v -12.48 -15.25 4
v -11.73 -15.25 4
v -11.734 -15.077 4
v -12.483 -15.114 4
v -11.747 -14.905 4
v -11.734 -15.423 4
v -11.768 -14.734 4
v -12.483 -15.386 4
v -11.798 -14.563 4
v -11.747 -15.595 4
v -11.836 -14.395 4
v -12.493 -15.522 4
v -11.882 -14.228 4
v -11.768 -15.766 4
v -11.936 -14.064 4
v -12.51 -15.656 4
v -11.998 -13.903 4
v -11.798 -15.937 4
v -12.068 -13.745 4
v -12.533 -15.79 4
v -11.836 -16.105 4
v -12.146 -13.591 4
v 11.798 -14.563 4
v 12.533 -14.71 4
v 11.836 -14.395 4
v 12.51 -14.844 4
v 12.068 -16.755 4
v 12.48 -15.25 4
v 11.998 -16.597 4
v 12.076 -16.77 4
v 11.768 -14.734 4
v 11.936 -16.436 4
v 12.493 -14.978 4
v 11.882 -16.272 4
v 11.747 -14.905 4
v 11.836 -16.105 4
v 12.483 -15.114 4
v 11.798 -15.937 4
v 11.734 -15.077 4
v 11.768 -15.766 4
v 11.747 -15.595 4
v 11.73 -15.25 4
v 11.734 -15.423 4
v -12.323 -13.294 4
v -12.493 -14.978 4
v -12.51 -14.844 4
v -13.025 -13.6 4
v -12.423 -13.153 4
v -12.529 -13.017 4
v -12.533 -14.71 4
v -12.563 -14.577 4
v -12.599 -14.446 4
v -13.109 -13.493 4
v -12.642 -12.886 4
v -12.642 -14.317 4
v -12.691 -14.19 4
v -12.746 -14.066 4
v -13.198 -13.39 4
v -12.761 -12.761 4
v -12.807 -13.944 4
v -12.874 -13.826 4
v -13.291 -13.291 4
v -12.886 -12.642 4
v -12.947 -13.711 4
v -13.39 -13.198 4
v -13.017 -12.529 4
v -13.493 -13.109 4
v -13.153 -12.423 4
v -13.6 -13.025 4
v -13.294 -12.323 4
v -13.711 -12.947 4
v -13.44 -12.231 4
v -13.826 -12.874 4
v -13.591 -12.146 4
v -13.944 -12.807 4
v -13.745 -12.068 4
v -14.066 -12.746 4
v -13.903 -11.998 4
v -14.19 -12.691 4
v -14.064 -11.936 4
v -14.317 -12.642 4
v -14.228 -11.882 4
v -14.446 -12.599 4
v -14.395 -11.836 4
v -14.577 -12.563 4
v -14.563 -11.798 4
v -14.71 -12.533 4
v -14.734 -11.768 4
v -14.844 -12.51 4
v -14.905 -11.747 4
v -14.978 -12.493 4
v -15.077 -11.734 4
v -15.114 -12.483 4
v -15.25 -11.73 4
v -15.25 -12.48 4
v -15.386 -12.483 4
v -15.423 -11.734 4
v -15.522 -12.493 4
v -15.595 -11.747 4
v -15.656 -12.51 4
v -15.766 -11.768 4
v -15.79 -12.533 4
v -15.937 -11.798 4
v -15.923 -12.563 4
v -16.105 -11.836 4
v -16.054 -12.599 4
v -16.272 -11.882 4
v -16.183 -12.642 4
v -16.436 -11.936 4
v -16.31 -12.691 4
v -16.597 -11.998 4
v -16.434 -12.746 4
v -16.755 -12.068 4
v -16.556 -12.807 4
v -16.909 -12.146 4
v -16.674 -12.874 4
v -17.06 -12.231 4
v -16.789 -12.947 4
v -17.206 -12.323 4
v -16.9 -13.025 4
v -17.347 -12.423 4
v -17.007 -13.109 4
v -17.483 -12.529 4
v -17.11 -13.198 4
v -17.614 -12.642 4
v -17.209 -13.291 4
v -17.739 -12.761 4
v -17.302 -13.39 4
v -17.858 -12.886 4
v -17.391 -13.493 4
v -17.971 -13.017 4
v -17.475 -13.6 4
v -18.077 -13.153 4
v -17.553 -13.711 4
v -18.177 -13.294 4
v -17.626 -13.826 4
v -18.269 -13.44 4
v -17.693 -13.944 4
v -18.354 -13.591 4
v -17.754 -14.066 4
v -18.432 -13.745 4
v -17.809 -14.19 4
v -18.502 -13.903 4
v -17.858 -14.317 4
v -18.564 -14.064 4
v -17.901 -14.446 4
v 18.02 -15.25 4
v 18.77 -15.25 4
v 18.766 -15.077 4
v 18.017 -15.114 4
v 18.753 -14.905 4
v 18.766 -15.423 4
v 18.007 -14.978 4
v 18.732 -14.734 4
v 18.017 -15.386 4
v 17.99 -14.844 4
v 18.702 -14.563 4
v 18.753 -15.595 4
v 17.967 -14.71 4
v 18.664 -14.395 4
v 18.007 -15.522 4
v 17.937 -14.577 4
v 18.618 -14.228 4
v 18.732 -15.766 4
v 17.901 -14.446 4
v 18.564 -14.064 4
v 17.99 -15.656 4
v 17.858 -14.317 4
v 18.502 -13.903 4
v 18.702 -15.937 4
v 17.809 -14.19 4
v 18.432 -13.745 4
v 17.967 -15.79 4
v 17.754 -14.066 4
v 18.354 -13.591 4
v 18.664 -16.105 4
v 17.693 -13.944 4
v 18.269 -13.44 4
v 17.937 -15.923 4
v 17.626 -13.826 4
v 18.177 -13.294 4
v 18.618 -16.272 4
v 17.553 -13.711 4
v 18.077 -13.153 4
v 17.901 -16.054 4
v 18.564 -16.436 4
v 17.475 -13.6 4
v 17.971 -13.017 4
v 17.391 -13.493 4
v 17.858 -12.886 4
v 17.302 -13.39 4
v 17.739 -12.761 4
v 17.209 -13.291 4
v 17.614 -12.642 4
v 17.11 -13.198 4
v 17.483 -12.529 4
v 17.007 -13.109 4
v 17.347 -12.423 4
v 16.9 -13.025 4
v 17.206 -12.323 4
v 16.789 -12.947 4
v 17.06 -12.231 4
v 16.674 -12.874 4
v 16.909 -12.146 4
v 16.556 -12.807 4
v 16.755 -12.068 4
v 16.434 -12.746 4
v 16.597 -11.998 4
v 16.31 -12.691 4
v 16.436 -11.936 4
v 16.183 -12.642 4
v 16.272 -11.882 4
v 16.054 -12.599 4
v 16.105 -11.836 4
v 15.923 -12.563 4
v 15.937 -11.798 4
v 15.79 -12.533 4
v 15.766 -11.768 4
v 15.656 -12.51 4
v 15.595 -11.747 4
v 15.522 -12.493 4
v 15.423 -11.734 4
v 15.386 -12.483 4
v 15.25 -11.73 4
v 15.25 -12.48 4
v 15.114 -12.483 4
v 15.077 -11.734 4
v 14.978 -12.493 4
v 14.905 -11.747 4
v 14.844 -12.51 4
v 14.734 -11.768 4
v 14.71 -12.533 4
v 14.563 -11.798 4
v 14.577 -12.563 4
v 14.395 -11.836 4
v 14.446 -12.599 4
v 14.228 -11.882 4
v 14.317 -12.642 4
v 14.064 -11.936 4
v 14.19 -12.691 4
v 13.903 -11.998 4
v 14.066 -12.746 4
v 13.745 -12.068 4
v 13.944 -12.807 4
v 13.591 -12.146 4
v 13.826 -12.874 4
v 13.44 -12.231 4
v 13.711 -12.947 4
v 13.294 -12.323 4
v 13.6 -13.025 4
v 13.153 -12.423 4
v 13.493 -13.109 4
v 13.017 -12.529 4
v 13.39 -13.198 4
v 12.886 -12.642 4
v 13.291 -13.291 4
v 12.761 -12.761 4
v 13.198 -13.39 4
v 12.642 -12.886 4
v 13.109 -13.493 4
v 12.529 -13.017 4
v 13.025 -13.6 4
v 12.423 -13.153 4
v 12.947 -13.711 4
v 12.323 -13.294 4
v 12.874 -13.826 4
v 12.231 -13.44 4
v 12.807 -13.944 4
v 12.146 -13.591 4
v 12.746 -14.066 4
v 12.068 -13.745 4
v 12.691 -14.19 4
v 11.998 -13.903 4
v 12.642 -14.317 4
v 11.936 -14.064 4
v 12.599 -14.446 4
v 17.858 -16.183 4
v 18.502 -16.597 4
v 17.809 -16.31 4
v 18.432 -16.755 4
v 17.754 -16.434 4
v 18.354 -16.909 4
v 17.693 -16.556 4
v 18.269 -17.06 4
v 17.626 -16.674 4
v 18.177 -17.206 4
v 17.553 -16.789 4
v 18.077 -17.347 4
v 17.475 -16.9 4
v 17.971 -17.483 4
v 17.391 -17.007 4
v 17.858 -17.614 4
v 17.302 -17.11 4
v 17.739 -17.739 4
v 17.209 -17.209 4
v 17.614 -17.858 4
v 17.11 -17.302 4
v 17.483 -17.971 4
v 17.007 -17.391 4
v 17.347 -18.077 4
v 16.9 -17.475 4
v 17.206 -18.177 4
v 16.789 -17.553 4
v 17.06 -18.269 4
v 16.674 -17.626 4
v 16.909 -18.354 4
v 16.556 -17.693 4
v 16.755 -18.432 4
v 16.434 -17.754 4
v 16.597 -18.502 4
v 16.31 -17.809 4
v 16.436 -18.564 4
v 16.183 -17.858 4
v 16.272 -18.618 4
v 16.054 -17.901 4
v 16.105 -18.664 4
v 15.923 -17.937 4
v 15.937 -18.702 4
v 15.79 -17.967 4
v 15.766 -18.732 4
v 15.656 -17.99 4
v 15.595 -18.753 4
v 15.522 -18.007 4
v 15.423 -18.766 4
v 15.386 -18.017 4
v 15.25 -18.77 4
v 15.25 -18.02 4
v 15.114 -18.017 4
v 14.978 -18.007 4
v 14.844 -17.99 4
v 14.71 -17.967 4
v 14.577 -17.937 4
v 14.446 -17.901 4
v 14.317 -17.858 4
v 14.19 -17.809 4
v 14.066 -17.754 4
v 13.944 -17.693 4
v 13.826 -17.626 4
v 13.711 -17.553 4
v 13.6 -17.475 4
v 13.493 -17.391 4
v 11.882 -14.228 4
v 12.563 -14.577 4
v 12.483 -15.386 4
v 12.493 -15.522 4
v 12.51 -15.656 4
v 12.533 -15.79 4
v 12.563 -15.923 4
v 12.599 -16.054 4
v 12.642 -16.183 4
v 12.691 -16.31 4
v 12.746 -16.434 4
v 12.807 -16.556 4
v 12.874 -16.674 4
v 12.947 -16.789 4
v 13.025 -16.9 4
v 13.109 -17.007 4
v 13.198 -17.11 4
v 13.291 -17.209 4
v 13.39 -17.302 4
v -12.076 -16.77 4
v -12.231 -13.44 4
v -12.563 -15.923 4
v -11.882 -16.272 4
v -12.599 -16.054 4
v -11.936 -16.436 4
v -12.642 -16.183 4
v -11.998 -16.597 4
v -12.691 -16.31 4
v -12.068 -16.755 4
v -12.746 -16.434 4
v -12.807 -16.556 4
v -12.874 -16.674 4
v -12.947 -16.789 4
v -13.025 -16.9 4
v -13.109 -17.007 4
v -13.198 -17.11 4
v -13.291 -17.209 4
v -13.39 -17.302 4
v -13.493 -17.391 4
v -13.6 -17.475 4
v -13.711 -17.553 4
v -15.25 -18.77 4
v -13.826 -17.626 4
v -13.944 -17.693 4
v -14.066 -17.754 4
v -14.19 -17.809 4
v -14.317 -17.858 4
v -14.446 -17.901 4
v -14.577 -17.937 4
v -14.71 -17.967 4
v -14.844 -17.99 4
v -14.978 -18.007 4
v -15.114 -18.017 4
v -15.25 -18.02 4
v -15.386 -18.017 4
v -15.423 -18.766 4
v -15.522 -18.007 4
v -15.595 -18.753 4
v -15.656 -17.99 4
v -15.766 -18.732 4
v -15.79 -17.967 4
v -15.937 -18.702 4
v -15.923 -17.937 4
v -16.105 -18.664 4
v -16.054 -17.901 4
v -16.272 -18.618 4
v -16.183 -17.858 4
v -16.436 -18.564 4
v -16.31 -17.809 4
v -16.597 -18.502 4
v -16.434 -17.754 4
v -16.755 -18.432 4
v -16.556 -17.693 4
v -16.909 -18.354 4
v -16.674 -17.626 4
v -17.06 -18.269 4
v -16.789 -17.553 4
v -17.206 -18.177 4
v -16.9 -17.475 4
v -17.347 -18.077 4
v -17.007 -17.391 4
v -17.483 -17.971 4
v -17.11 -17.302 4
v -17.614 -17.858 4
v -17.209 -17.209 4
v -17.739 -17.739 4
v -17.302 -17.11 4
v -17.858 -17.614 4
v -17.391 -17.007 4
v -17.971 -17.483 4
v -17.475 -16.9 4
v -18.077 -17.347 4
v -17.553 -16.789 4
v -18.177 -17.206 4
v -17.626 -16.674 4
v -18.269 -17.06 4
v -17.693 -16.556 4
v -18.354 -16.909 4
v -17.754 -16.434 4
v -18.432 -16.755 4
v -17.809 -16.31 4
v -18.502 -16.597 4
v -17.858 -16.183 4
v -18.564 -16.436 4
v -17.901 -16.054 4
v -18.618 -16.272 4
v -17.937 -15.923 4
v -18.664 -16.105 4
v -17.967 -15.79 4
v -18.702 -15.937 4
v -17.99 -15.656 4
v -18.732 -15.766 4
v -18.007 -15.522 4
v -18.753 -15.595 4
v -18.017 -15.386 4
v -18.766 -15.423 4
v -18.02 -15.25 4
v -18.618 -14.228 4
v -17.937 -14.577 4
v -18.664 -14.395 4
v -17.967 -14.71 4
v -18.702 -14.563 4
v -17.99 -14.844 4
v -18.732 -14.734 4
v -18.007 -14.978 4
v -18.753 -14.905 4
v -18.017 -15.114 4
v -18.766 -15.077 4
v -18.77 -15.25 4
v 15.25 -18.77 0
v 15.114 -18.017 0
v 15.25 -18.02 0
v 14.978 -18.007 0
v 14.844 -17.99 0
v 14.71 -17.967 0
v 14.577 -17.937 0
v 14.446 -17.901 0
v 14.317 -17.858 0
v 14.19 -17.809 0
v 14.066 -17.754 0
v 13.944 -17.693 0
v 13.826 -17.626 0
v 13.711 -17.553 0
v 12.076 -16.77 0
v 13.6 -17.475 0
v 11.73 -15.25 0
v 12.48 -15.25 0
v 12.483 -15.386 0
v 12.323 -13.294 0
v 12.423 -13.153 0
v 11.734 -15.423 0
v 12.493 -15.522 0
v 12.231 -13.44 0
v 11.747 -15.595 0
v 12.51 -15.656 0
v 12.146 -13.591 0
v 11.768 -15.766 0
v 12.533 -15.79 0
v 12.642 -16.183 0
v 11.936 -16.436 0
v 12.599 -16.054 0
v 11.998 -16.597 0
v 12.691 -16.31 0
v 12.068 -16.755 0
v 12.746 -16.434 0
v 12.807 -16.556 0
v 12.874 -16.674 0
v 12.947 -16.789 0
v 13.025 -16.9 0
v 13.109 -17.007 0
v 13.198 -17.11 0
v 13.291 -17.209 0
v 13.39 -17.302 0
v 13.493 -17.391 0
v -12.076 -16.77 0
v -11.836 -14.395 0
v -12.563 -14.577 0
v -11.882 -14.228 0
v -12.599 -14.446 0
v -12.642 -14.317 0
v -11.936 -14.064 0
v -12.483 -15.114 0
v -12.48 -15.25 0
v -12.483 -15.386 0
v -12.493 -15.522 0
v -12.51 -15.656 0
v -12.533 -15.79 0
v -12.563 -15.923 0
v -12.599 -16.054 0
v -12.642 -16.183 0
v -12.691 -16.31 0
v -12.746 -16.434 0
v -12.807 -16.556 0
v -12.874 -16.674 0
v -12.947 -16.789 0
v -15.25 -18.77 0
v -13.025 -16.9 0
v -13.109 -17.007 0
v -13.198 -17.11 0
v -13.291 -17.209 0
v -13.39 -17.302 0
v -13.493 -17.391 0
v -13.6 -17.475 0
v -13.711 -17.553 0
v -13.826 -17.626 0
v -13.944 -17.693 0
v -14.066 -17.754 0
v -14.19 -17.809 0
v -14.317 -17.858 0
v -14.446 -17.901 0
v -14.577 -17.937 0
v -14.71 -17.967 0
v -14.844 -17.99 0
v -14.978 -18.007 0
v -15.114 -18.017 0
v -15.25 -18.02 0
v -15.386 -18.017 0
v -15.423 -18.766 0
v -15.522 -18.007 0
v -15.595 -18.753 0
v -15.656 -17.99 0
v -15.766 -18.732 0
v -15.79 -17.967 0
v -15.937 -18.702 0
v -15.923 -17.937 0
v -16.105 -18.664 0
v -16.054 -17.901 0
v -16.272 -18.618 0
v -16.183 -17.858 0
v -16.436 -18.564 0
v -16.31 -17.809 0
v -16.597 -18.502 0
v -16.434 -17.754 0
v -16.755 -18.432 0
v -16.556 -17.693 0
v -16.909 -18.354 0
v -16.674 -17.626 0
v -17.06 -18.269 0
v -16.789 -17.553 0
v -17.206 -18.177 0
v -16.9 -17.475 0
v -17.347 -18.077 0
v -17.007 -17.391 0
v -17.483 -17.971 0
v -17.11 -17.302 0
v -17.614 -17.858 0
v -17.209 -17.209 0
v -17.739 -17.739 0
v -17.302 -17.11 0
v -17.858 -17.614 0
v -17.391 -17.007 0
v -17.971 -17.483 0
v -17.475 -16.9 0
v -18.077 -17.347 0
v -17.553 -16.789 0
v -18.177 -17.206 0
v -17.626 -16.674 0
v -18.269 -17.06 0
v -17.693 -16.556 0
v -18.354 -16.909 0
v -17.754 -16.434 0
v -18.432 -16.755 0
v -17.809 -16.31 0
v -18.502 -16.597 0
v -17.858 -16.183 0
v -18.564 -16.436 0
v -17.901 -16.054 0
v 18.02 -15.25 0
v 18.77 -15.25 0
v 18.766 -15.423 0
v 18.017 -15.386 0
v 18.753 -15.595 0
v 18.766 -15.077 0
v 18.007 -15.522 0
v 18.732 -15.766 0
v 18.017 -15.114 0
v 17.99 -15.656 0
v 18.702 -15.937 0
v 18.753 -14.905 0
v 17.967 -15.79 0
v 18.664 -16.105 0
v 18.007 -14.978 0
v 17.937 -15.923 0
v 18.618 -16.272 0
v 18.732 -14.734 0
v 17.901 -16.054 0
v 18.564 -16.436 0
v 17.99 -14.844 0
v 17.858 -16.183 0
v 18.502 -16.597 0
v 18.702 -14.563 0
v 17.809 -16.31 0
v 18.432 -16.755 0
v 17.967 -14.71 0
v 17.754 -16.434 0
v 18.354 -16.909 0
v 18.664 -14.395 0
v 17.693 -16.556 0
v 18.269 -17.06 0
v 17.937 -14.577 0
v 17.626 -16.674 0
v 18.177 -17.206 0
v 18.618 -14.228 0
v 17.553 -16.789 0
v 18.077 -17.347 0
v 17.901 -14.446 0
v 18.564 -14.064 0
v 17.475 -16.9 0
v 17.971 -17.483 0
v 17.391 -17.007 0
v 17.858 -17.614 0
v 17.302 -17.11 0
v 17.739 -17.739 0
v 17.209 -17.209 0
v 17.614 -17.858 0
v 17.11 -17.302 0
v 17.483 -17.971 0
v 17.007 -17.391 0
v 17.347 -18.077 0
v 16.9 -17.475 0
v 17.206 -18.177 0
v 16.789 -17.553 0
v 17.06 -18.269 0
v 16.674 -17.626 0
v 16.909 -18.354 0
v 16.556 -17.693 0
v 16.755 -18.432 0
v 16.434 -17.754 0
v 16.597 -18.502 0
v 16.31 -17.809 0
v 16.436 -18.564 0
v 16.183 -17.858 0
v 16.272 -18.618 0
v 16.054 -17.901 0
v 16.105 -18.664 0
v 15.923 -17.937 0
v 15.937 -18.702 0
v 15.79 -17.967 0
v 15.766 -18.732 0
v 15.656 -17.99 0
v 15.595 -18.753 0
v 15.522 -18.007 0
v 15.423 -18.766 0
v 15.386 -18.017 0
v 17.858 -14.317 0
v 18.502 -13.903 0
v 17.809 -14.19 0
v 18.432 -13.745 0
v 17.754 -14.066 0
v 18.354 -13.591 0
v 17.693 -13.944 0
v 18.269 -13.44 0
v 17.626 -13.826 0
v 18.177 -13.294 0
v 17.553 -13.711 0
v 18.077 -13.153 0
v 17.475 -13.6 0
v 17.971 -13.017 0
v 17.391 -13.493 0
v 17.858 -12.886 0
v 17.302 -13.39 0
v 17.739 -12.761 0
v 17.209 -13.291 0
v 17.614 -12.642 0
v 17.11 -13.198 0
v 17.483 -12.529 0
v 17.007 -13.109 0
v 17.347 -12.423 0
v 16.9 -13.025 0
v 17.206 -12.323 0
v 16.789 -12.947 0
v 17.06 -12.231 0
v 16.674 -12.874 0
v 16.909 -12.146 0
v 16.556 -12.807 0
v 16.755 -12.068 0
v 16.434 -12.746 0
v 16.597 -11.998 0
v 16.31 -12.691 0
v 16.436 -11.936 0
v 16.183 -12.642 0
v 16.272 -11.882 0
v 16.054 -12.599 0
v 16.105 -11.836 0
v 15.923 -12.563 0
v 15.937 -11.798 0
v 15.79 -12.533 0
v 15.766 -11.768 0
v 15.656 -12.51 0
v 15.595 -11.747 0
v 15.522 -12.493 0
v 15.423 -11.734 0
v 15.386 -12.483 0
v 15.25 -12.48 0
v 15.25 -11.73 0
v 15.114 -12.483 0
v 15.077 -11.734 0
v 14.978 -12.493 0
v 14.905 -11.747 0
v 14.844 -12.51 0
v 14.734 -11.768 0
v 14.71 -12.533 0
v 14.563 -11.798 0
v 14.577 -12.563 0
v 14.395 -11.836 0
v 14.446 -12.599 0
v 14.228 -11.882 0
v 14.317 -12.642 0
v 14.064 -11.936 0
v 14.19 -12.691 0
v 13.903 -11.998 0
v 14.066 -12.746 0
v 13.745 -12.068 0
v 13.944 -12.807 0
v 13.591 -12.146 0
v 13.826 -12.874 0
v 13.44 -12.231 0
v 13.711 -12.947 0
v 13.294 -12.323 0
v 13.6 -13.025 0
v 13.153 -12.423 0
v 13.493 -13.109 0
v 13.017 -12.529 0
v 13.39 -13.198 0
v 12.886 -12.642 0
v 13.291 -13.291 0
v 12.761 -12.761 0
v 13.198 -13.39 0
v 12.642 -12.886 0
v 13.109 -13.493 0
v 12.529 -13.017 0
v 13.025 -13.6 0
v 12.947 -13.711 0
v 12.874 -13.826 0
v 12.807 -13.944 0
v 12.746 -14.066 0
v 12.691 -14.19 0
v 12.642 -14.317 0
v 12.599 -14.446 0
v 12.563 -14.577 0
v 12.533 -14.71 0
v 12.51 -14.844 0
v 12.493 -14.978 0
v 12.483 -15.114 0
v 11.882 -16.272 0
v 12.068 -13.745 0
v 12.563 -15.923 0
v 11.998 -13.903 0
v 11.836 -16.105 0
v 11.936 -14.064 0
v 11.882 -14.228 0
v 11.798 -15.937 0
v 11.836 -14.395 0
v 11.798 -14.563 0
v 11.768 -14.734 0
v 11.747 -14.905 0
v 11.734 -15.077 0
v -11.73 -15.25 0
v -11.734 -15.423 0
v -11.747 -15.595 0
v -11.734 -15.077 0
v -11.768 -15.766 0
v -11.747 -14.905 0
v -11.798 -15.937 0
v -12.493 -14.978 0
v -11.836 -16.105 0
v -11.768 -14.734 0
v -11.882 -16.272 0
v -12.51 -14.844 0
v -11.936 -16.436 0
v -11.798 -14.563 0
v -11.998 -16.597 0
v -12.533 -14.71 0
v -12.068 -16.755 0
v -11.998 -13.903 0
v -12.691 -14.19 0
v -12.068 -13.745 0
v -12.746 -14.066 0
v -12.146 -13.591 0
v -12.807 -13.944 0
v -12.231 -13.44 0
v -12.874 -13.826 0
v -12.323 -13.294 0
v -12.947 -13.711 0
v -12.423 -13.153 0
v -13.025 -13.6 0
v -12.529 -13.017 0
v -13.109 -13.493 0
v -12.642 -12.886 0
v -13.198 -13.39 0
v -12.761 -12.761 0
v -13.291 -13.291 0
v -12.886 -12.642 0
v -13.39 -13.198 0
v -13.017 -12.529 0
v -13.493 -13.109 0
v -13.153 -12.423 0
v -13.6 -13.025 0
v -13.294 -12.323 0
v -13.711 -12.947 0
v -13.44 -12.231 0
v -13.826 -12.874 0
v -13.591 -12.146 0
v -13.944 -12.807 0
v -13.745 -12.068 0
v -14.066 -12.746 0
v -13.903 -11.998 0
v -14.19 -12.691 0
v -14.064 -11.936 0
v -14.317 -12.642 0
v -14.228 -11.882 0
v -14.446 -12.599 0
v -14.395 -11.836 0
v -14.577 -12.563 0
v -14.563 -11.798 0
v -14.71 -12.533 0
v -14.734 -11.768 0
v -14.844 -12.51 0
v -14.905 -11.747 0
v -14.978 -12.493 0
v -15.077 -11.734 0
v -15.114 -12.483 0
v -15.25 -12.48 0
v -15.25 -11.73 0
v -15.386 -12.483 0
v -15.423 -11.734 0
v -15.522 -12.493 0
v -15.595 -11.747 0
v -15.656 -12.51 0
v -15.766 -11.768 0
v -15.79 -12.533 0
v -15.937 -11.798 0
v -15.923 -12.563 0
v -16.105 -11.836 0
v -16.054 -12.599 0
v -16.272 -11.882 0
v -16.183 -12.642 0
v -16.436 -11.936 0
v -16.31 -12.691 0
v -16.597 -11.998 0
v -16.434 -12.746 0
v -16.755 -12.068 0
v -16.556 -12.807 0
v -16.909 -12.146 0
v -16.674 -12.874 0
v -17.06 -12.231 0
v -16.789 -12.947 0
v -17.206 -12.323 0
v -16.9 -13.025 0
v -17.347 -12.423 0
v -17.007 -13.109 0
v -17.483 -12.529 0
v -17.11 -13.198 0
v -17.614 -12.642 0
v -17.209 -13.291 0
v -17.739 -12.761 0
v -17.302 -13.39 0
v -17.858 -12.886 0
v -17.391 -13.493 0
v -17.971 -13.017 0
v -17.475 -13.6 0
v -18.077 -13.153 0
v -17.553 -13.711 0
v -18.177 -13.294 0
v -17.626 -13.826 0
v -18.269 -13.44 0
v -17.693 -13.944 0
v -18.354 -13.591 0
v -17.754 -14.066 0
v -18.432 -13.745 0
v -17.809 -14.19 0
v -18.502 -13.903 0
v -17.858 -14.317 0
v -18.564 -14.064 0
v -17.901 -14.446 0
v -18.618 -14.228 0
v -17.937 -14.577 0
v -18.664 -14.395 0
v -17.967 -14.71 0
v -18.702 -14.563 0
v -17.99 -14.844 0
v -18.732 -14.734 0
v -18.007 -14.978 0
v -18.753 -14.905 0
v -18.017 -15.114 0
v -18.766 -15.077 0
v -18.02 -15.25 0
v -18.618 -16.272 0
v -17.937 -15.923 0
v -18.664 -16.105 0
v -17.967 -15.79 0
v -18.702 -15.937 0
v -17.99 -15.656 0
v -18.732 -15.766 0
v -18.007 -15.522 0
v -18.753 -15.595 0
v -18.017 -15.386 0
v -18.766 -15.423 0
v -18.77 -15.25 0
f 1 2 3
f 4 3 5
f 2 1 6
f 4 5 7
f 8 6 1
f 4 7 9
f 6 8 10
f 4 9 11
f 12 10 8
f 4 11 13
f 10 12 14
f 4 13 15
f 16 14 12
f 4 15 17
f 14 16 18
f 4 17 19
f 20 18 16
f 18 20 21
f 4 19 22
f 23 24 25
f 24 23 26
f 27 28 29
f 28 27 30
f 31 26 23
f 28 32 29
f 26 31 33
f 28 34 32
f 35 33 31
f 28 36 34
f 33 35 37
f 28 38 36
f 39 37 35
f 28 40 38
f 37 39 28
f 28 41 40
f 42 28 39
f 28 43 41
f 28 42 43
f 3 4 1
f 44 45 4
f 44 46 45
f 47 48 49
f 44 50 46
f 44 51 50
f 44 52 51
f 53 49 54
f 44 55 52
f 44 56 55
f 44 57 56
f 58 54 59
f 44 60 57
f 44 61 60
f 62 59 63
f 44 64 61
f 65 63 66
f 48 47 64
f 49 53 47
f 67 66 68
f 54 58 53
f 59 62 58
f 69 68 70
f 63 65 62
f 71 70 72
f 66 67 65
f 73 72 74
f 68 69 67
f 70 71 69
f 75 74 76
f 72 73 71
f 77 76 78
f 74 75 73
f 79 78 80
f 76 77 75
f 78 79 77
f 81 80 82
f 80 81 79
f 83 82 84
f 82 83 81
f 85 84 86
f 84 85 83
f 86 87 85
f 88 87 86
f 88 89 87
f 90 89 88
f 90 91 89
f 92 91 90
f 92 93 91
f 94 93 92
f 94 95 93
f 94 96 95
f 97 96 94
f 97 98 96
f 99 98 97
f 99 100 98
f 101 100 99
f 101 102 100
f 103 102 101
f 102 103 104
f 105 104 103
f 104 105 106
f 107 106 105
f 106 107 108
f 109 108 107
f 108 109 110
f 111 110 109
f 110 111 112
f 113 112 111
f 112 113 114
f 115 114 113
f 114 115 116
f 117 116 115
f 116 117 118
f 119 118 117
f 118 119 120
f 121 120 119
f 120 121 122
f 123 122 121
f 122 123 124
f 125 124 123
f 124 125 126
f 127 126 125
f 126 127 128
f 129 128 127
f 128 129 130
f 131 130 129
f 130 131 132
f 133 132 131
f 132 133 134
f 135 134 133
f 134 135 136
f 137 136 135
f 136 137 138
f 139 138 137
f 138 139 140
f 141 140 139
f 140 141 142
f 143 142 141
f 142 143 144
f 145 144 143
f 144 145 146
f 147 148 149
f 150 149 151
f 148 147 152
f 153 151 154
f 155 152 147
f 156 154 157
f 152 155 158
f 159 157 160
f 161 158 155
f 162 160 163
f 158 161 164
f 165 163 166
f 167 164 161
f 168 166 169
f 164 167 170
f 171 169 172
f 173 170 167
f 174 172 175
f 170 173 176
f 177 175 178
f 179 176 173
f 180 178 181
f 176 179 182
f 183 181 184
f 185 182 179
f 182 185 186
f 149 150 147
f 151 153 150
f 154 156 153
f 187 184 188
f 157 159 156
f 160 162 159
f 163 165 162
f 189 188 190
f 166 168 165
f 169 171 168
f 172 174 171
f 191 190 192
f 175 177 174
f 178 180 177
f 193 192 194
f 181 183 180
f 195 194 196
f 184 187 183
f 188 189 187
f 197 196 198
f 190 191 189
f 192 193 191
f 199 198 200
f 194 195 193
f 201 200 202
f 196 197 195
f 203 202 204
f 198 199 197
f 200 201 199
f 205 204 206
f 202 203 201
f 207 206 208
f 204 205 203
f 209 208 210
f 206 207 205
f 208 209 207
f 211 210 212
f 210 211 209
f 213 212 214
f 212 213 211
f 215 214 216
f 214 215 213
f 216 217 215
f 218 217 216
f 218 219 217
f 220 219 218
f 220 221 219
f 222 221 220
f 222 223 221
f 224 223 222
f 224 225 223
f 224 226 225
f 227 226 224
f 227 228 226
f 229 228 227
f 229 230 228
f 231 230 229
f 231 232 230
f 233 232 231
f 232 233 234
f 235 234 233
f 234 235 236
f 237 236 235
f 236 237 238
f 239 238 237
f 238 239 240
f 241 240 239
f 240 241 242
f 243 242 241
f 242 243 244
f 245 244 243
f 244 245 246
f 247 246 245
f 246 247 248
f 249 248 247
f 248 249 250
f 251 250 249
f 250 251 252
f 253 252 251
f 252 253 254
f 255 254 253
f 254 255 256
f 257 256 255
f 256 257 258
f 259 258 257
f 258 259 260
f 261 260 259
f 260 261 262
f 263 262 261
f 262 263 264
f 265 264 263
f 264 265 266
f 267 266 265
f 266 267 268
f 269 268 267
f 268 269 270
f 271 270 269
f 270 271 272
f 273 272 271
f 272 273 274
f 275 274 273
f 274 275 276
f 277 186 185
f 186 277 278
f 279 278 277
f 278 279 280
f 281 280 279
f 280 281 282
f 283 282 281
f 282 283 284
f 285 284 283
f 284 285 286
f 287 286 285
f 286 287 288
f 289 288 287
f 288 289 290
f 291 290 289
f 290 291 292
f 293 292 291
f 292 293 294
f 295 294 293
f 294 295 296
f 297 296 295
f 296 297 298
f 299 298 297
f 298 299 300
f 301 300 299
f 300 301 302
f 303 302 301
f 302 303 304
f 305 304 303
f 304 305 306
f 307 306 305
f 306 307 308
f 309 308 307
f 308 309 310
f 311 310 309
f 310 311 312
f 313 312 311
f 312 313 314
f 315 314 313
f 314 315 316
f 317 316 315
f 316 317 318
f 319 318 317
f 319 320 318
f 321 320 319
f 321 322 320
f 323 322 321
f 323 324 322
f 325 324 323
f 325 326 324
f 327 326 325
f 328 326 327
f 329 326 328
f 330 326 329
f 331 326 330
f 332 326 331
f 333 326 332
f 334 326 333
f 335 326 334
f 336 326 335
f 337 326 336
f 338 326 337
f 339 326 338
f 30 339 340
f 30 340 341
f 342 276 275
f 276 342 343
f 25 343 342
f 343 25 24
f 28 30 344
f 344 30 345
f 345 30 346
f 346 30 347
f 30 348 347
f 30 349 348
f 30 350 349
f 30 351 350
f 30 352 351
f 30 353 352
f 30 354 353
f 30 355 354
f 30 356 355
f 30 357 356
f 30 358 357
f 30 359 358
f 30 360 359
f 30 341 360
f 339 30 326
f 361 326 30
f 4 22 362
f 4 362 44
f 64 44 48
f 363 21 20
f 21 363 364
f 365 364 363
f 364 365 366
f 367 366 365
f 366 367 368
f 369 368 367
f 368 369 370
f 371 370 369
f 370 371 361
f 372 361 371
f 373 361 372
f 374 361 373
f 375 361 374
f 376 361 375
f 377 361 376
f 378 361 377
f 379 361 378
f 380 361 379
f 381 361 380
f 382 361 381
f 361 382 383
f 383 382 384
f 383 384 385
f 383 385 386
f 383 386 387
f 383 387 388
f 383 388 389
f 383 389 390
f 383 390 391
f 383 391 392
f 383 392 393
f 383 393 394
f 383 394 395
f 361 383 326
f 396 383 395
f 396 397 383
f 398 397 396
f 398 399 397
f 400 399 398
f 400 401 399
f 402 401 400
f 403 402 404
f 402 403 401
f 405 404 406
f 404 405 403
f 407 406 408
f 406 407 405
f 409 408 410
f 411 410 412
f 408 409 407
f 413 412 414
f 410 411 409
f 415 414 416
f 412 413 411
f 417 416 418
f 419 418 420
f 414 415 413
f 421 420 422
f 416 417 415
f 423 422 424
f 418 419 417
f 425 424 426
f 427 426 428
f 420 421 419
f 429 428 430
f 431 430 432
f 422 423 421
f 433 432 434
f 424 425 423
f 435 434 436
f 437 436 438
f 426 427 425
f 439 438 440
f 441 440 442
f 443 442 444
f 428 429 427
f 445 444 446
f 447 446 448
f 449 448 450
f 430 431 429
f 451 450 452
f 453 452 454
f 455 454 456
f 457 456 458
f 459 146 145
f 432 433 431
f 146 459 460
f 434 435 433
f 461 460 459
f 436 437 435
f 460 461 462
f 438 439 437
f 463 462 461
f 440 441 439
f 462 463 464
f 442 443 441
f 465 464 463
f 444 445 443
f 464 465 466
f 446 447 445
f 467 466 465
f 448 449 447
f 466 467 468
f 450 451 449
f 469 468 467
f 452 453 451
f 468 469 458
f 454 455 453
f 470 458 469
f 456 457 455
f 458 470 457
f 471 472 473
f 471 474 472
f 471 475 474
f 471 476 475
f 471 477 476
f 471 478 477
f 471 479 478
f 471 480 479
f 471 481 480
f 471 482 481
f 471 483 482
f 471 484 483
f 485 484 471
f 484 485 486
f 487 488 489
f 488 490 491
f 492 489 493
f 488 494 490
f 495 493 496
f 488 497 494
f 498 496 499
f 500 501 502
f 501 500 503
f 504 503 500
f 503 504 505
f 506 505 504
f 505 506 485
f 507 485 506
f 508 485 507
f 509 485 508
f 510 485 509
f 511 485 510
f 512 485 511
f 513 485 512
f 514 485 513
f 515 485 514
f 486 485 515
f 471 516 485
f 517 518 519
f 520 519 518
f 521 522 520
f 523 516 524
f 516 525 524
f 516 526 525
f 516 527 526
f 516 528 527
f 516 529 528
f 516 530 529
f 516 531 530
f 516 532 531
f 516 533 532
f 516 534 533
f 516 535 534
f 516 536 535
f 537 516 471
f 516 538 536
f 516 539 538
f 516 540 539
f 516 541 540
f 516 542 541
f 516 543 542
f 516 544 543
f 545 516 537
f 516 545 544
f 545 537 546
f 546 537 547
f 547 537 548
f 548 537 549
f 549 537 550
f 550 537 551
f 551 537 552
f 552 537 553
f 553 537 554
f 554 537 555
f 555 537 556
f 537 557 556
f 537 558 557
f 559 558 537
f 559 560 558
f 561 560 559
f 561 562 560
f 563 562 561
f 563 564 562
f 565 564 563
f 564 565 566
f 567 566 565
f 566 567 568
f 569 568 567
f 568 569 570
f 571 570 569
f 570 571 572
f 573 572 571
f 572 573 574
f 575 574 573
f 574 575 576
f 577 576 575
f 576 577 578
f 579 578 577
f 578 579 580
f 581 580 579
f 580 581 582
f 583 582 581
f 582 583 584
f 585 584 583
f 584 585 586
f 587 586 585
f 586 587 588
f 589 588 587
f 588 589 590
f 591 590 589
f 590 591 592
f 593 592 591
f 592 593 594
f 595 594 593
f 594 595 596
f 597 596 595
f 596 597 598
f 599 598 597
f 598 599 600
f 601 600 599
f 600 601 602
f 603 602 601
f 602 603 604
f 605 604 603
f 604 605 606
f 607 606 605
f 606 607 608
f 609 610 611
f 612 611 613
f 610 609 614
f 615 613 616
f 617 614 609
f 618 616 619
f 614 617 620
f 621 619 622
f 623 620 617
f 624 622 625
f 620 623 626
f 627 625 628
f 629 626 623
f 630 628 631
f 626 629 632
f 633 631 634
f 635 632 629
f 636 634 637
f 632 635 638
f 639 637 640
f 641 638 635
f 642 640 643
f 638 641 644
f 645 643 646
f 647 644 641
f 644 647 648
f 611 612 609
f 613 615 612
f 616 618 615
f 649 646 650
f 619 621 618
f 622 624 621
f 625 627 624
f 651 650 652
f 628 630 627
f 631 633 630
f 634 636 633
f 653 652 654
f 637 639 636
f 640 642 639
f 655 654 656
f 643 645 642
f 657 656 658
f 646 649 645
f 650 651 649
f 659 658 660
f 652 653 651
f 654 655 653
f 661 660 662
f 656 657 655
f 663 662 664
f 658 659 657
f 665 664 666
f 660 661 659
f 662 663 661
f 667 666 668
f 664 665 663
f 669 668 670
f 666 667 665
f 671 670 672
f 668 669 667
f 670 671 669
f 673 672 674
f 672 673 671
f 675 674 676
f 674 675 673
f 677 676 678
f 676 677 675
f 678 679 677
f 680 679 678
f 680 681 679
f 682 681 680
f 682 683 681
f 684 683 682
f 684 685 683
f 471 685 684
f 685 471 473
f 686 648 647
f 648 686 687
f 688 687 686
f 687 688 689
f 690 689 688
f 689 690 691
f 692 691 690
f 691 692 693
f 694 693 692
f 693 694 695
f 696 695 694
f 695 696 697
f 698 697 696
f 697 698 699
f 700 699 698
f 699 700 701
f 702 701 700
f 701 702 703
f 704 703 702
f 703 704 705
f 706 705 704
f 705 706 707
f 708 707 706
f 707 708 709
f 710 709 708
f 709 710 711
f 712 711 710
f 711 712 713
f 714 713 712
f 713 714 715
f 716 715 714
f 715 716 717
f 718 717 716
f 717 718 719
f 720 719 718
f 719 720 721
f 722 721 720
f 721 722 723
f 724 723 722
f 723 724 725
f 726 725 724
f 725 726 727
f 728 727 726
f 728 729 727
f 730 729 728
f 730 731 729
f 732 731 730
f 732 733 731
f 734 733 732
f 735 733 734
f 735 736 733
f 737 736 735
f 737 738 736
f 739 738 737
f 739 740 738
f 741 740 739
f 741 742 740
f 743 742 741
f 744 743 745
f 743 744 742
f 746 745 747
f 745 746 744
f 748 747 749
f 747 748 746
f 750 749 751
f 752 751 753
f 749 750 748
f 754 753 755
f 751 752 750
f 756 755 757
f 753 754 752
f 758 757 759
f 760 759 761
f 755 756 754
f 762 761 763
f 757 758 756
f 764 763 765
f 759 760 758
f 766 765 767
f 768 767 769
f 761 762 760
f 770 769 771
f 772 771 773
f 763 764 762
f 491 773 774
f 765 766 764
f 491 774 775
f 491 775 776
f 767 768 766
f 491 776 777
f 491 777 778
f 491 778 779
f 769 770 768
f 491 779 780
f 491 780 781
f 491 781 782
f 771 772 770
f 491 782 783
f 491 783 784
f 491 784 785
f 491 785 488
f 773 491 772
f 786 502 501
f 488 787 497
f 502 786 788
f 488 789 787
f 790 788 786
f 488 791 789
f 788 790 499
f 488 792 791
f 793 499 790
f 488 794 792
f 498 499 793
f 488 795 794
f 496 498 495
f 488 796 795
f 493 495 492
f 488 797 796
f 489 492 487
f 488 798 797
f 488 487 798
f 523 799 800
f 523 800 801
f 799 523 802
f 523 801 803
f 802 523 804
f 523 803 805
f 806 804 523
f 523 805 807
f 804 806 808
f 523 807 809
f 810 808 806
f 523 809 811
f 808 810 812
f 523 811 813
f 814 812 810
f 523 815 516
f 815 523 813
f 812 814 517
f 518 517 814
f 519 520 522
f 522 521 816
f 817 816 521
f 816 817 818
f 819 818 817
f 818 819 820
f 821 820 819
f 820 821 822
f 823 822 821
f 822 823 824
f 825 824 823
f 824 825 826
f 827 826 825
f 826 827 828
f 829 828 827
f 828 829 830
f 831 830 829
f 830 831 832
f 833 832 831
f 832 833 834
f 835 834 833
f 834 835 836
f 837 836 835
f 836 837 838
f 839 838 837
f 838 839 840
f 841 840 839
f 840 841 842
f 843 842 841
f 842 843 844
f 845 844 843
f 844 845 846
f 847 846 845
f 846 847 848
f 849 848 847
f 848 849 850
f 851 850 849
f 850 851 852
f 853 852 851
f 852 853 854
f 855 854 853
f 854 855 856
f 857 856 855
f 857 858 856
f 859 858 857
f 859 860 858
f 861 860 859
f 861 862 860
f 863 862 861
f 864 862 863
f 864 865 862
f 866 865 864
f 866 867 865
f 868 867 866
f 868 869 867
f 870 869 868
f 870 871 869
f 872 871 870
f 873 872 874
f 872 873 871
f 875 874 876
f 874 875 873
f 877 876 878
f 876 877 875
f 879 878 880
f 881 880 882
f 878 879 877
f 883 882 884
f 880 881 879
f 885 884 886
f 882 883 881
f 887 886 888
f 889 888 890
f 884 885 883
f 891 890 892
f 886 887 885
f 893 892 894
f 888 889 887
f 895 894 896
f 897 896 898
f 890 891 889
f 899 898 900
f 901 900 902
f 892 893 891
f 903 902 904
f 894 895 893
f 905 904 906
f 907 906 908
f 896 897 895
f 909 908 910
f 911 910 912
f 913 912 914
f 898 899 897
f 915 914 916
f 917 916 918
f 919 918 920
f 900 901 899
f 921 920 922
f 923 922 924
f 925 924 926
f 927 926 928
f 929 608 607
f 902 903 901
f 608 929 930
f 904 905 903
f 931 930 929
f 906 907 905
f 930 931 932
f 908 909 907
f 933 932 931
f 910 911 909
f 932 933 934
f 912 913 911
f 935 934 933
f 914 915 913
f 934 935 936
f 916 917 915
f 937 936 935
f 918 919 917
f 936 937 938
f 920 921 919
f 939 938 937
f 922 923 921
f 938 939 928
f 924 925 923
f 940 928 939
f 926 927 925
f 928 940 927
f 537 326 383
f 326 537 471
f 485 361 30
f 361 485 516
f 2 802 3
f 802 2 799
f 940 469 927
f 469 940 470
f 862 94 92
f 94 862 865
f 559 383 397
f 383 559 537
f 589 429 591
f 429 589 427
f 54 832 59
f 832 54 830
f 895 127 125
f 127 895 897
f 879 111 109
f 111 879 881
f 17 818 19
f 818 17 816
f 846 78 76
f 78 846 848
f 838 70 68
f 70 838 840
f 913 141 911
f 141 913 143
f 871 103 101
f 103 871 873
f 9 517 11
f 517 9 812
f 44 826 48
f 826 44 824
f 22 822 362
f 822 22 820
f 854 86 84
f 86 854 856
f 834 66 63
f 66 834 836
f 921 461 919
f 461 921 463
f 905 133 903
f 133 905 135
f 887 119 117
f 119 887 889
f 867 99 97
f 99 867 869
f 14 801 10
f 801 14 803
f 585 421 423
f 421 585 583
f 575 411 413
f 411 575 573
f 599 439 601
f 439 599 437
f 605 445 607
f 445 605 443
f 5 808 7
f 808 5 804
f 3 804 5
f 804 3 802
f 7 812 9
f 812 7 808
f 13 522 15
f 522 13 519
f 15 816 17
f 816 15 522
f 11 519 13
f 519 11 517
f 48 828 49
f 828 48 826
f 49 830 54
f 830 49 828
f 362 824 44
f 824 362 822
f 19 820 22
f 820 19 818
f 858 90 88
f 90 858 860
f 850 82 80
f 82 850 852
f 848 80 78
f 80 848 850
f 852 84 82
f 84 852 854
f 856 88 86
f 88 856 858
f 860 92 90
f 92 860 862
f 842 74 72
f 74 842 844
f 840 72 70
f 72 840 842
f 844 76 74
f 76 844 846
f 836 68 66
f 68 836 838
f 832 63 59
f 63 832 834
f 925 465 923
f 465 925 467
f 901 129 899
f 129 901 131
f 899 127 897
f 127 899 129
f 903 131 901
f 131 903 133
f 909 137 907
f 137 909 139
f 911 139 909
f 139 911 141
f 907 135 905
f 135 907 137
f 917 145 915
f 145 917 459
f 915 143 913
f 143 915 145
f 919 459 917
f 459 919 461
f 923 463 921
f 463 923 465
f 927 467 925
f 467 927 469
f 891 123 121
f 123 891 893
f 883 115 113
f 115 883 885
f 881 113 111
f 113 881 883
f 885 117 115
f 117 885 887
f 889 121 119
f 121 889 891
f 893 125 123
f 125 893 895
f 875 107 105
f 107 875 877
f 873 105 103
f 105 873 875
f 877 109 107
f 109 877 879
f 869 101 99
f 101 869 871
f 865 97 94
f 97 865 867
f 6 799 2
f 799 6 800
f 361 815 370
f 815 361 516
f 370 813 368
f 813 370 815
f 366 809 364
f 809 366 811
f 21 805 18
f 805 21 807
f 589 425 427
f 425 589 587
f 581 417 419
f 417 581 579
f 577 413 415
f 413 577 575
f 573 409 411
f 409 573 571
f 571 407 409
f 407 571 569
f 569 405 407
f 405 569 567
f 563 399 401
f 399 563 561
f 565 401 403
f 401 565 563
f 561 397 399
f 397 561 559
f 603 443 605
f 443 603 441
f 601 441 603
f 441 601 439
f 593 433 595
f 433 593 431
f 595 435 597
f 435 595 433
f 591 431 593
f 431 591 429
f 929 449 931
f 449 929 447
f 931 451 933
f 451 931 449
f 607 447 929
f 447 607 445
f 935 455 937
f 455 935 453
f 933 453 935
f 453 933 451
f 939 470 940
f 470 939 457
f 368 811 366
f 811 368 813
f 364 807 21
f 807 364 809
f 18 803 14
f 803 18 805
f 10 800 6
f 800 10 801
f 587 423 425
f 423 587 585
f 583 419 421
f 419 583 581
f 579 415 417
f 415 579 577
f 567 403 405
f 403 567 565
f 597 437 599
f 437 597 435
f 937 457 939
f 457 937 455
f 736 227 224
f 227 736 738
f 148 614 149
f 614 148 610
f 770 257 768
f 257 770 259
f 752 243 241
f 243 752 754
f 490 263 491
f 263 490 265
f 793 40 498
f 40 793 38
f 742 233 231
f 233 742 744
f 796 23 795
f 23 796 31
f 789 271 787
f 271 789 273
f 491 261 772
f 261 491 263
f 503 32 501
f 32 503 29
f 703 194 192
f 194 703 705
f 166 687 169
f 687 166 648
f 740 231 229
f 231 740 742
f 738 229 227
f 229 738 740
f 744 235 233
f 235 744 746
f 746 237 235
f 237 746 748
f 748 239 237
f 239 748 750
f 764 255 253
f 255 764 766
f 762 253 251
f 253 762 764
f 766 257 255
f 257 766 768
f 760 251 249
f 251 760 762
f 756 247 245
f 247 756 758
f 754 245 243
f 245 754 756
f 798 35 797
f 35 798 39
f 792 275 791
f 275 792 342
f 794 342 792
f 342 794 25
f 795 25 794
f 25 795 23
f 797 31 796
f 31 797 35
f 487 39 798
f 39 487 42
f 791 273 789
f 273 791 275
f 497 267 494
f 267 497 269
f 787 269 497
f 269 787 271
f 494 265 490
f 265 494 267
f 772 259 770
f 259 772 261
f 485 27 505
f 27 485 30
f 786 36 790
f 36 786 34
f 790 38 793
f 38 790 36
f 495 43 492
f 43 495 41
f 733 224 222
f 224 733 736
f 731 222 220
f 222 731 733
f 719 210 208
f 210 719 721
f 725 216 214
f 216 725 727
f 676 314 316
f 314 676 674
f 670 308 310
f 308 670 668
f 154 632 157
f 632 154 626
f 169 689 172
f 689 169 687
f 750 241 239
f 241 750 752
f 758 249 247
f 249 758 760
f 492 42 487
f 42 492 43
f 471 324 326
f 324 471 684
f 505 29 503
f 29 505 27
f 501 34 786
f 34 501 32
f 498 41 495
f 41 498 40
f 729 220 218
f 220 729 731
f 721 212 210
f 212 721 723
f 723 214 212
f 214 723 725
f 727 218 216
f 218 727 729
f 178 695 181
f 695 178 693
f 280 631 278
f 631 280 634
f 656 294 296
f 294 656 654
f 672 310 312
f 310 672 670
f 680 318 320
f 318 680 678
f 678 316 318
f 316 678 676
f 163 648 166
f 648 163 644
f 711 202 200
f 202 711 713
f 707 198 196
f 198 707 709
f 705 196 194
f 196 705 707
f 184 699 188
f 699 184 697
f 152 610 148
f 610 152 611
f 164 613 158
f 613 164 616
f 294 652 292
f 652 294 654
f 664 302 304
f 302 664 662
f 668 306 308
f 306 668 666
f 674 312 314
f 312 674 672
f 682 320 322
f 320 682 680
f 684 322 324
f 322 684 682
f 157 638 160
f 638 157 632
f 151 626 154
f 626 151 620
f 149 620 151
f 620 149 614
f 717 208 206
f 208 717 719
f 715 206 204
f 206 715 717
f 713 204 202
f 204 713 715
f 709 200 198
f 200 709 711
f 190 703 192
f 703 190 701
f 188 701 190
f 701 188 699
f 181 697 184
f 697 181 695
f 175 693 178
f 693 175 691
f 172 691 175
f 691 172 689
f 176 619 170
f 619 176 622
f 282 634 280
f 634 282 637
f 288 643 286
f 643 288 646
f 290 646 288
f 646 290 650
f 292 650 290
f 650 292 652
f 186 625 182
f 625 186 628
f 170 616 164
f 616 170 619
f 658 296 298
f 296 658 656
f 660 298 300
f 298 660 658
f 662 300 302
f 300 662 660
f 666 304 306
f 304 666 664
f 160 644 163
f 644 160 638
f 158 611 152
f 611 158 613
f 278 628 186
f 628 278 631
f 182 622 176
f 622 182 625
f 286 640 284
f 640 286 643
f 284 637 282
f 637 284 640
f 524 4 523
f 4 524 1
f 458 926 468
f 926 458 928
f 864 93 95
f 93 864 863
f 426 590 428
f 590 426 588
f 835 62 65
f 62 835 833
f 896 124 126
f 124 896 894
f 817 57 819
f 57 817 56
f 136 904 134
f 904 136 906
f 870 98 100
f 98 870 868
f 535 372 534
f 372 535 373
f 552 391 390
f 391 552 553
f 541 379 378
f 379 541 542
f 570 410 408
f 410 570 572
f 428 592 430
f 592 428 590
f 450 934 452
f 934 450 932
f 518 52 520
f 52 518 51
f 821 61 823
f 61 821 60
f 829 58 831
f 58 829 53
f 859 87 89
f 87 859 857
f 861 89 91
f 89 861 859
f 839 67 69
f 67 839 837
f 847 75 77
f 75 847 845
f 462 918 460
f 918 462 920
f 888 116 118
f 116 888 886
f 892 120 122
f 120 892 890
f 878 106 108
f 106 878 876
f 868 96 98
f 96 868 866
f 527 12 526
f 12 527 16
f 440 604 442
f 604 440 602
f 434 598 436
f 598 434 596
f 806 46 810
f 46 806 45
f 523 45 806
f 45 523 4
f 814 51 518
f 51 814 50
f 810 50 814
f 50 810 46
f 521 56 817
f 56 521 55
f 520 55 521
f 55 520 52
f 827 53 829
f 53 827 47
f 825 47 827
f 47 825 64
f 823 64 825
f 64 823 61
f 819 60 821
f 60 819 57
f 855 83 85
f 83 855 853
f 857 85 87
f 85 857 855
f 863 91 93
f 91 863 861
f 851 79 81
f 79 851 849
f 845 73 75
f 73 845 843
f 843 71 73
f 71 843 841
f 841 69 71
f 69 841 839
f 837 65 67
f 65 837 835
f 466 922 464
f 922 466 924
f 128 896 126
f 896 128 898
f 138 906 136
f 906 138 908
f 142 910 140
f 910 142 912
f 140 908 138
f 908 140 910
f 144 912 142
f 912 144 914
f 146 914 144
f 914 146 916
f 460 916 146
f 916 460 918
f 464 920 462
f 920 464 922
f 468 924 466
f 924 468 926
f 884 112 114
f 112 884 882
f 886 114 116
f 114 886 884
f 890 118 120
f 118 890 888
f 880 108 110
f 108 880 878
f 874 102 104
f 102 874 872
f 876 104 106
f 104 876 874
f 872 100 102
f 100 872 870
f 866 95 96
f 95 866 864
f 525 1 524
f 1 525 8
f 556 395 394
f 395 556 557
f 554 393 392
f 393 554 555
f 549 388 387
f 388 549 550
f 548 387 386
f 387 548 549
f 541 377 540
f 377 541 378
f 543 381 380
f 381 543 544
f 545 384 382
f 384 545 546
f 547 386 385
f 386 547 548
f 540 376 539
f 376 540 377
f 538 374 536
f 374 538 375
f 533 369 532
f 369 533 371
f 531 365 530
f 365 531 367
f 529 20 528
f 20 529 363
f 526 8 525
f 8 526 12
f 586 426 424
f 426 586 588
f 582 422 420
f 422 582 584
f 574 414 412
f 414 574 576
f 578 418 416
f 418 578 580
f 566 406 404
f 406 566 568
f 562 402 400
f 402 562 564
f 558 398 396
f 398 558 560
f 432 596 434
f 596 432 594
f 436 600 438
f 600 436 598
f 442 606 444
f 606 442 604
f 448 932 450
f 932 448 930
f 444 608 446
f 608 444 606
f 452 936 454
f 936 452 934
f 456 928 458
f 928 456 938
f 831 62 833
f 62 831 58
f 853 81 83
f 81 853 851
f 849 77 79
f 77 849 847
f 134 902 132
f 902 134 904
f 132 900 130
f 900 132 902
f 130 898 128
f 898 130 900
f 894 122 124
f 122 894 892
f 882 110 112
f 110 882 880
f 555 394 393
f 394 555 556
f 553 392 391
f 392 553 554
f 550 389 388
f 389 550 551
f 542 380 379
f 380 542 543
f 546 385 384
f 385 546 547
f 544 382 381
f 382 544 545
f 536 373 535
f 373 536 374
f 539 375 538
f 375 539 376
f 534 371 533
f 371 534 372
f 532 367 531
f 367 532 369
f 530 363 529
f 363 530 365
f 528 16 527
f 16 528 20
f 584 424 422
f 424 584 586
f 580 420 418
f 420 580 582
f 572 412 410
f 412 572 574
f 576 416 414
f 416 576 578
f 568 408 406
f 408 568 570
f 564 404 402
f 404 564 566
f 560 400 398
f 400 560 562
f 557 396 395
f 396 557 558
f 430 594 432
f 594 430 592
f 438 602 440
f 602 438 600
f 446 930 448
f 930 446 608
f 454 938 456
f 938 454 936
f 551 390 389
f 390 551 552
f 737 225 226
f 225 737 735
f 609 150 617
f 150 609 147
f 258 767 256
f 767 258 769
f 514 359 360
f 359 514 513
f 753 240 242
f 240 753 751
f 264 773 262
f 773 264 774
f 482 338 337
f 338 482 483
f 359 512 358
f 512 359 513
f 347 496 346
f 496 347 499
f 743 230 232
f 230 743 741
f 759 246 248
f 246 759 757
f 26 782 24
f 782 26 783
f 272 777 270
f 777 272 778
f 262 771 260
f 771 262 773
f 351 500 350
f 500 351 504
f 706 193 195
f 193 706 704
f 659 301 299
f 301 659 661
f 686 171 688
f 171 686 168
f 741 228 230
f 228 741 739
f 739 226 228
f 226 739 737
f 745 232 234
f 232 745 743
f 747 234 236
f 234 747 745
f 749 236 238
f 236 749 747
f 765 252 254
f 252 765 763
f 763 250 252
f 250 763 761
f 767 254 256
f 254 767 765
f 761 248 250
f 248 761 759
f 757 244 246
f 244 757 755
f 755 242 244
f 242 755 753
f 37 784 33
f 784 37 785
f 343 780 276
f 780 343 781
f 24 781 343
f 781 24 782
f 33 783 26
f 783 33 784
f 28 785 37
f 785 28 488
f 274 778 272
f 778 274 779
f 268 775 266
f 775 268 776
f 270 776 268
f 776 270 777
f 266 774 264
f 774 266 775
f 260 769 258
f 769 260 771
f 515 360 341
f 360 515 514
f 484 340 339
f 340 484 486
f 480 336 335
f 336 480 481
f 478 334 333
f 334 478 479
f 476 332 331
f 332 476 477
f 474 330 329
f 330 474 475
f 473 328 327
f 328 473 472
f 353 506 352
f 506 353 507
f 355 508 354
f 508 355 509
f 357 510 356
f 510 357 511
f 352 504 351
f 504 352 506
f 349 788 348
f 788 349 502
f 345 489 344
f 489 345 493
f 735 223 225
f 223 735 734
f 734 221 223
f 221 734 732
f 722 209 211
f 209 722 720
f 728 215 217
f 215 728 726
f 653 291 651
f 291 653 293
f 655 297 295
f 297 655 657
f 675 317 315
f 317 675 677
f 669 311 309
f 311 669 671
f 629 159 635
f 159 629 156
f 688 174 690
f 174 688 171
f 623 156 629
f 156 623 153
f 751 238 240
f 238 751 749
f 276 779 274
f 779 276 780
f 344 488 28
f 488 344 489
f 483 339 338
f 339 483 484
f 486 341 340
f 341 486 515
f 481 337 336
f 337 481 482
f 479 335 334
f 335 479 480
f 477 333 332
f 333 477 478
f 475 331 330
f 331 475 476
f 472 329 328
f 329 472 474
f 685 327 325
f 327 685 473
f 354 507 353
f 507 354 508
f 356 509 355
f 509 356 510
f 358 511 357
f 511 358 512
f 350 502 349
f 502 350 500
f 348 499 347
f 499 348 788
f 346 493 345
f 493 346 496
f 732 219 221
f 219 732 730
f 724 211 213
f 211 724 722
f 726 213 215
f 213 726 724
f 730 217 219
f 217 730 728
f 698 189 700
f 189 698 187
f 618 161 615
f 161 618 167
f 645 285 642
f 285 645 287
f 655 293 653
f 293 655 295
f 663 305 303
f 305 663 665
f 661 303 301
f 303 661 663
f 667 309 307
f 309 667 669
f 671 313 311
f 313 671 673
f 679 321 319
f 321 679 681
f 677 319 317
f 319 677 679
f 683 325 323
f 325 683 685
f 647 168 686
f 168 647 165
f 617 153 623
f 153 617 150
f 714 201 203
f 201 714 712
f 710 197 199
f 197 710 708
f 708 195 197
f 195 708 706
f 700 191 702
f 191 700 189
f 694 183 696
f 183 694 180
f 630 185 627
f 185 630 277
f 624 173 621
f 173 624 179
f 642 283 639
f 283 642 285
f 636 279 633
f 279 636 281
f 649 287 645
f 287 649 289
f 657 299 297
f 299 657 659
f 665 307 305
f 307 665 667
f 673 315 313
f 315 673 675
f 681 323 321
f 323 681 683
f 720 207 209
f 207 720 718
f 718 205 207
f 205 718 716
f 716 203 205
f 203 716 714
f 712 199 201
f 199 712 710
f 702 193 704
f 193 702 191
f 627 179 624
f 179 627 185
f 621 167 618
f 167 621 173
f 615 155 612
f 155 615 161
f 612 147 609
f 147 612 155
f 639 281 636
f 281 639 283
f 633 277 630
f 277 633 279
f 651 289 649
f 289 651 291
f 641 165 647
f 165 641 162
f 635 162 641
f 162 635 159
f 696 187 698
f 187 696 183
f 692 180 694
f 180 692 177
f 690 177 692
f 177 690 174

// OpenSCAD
STANDOFF_DISTANCE = 30.5;
STANDOFF_DIAMETER = 5.04;
MOUNT_THICKNESS = 2;
STANDOFF_HEIGHT = 30;
BRIDGE_OFFSET = -2.52; // [-2.5:0.1:2.5]
TOLERANCE = 0.5; // [0:0.05:0.5]

$fn = 128;
//frame_skeleton(STANDOFF_DISTANCE, STANDOFF_DIAMETER, STANDOFF_HEIGHT);
pod(STANDOFF_DISTANCE, STANDOFF_DIAMETER, STANDOFF_HEIGHT, BRIDGE_OFFSET, TOLERANCE);


module frame_skeleton(standoff_distance, standoff_diameter, standoff_height) {
    base_width = 4;
    full_side_length = standoff_distance + standoff_diameter;
    echo(str("Side length", full_side_length));
    
    translate([0,0,-base_width/2])
    base(full_side_length, base_width, true);
    
    angle_step = 90;
    translate([0,0,standoff_height/2])
    for (n = [0:1:3]){
          rotate([0,0, n*angle_step])
          translate([standoff_distance/2,standoff_distance/2,0])
          standoff(standoff_diameter, standoff_height, true);
     }
     
     translate([0,0, standoff_height])
     base(full_side_length, base_width, true);
}

module base(full_side_length, base_width, center) {    
    color("green")
    cube([full_side_length,full_side_length, base_width], center);
}

module standoff(diameter, height, center) {
    color("yellow")
    cylinder(height,diameter/2, diameter/2, center);
}

module bridge(bridge_length, bridge_thickness, bridge_height, mount_diameter, bridge_offset, tolerance, center){
    angle_step = 180;
    
    color("red")
    difference(){
        translate([0, bridge_offset, 0])         
        cube([bridge_length, bridge_thickness, bridge_height], center);
        for (n = [0:1:1]){
          rotate([0,0, n*angle_step])
          translate([bridge_length/ 2, 0, 0]) 
          standoff(mount_diameter + tolerance, bridge_height*2, center);
        }
    }
}

module pod(standoff_distance, standoff_diameter, standoff_height, bridge_offset, tolerance) {
    connector_height = 4;
    bridge_height = connector_height;
    mount_diameter = standoff_diameter + 2;
    bridge_thickness = 2;
    
    number_of_bridges = 1;
    
    bridge_length = standoff_distance; 

    angle_step = 90;
    translate([0, 0,connector_height/2])
    
    difference(){
        union(){
            for (n = [0:1:number_of_bridges]){
                  rotate([0,0, n*angle_step])
                  translate([-standoff_distance/2,-standoff_distance/2, 0]) 
                  color("red")
                  standoff(mount_diameter, connector_height, true);
             };
             for (n = [0:1:number_of_bridges-1]){
                  rotate([0,0, n*angle_step])
                  translate([0,-standoff_distance/2, 0]) 
                  bridge(bridge_length, bridge_thickness, bridge_height, standoff_diameter, bridge_offset, tolerance, true);
             };         
         };

         for (n = [0:1:number_of_bridges]){
                  rotate([0,0, n*angle_step])
                  translate([-standoff_distance/2,-standoff_distance/2, 0]) 
                  color("red")
                  standoff(standoff_diameter + tolerance, connector_height * 3, true);                  
         }    
        
    }
   
}
